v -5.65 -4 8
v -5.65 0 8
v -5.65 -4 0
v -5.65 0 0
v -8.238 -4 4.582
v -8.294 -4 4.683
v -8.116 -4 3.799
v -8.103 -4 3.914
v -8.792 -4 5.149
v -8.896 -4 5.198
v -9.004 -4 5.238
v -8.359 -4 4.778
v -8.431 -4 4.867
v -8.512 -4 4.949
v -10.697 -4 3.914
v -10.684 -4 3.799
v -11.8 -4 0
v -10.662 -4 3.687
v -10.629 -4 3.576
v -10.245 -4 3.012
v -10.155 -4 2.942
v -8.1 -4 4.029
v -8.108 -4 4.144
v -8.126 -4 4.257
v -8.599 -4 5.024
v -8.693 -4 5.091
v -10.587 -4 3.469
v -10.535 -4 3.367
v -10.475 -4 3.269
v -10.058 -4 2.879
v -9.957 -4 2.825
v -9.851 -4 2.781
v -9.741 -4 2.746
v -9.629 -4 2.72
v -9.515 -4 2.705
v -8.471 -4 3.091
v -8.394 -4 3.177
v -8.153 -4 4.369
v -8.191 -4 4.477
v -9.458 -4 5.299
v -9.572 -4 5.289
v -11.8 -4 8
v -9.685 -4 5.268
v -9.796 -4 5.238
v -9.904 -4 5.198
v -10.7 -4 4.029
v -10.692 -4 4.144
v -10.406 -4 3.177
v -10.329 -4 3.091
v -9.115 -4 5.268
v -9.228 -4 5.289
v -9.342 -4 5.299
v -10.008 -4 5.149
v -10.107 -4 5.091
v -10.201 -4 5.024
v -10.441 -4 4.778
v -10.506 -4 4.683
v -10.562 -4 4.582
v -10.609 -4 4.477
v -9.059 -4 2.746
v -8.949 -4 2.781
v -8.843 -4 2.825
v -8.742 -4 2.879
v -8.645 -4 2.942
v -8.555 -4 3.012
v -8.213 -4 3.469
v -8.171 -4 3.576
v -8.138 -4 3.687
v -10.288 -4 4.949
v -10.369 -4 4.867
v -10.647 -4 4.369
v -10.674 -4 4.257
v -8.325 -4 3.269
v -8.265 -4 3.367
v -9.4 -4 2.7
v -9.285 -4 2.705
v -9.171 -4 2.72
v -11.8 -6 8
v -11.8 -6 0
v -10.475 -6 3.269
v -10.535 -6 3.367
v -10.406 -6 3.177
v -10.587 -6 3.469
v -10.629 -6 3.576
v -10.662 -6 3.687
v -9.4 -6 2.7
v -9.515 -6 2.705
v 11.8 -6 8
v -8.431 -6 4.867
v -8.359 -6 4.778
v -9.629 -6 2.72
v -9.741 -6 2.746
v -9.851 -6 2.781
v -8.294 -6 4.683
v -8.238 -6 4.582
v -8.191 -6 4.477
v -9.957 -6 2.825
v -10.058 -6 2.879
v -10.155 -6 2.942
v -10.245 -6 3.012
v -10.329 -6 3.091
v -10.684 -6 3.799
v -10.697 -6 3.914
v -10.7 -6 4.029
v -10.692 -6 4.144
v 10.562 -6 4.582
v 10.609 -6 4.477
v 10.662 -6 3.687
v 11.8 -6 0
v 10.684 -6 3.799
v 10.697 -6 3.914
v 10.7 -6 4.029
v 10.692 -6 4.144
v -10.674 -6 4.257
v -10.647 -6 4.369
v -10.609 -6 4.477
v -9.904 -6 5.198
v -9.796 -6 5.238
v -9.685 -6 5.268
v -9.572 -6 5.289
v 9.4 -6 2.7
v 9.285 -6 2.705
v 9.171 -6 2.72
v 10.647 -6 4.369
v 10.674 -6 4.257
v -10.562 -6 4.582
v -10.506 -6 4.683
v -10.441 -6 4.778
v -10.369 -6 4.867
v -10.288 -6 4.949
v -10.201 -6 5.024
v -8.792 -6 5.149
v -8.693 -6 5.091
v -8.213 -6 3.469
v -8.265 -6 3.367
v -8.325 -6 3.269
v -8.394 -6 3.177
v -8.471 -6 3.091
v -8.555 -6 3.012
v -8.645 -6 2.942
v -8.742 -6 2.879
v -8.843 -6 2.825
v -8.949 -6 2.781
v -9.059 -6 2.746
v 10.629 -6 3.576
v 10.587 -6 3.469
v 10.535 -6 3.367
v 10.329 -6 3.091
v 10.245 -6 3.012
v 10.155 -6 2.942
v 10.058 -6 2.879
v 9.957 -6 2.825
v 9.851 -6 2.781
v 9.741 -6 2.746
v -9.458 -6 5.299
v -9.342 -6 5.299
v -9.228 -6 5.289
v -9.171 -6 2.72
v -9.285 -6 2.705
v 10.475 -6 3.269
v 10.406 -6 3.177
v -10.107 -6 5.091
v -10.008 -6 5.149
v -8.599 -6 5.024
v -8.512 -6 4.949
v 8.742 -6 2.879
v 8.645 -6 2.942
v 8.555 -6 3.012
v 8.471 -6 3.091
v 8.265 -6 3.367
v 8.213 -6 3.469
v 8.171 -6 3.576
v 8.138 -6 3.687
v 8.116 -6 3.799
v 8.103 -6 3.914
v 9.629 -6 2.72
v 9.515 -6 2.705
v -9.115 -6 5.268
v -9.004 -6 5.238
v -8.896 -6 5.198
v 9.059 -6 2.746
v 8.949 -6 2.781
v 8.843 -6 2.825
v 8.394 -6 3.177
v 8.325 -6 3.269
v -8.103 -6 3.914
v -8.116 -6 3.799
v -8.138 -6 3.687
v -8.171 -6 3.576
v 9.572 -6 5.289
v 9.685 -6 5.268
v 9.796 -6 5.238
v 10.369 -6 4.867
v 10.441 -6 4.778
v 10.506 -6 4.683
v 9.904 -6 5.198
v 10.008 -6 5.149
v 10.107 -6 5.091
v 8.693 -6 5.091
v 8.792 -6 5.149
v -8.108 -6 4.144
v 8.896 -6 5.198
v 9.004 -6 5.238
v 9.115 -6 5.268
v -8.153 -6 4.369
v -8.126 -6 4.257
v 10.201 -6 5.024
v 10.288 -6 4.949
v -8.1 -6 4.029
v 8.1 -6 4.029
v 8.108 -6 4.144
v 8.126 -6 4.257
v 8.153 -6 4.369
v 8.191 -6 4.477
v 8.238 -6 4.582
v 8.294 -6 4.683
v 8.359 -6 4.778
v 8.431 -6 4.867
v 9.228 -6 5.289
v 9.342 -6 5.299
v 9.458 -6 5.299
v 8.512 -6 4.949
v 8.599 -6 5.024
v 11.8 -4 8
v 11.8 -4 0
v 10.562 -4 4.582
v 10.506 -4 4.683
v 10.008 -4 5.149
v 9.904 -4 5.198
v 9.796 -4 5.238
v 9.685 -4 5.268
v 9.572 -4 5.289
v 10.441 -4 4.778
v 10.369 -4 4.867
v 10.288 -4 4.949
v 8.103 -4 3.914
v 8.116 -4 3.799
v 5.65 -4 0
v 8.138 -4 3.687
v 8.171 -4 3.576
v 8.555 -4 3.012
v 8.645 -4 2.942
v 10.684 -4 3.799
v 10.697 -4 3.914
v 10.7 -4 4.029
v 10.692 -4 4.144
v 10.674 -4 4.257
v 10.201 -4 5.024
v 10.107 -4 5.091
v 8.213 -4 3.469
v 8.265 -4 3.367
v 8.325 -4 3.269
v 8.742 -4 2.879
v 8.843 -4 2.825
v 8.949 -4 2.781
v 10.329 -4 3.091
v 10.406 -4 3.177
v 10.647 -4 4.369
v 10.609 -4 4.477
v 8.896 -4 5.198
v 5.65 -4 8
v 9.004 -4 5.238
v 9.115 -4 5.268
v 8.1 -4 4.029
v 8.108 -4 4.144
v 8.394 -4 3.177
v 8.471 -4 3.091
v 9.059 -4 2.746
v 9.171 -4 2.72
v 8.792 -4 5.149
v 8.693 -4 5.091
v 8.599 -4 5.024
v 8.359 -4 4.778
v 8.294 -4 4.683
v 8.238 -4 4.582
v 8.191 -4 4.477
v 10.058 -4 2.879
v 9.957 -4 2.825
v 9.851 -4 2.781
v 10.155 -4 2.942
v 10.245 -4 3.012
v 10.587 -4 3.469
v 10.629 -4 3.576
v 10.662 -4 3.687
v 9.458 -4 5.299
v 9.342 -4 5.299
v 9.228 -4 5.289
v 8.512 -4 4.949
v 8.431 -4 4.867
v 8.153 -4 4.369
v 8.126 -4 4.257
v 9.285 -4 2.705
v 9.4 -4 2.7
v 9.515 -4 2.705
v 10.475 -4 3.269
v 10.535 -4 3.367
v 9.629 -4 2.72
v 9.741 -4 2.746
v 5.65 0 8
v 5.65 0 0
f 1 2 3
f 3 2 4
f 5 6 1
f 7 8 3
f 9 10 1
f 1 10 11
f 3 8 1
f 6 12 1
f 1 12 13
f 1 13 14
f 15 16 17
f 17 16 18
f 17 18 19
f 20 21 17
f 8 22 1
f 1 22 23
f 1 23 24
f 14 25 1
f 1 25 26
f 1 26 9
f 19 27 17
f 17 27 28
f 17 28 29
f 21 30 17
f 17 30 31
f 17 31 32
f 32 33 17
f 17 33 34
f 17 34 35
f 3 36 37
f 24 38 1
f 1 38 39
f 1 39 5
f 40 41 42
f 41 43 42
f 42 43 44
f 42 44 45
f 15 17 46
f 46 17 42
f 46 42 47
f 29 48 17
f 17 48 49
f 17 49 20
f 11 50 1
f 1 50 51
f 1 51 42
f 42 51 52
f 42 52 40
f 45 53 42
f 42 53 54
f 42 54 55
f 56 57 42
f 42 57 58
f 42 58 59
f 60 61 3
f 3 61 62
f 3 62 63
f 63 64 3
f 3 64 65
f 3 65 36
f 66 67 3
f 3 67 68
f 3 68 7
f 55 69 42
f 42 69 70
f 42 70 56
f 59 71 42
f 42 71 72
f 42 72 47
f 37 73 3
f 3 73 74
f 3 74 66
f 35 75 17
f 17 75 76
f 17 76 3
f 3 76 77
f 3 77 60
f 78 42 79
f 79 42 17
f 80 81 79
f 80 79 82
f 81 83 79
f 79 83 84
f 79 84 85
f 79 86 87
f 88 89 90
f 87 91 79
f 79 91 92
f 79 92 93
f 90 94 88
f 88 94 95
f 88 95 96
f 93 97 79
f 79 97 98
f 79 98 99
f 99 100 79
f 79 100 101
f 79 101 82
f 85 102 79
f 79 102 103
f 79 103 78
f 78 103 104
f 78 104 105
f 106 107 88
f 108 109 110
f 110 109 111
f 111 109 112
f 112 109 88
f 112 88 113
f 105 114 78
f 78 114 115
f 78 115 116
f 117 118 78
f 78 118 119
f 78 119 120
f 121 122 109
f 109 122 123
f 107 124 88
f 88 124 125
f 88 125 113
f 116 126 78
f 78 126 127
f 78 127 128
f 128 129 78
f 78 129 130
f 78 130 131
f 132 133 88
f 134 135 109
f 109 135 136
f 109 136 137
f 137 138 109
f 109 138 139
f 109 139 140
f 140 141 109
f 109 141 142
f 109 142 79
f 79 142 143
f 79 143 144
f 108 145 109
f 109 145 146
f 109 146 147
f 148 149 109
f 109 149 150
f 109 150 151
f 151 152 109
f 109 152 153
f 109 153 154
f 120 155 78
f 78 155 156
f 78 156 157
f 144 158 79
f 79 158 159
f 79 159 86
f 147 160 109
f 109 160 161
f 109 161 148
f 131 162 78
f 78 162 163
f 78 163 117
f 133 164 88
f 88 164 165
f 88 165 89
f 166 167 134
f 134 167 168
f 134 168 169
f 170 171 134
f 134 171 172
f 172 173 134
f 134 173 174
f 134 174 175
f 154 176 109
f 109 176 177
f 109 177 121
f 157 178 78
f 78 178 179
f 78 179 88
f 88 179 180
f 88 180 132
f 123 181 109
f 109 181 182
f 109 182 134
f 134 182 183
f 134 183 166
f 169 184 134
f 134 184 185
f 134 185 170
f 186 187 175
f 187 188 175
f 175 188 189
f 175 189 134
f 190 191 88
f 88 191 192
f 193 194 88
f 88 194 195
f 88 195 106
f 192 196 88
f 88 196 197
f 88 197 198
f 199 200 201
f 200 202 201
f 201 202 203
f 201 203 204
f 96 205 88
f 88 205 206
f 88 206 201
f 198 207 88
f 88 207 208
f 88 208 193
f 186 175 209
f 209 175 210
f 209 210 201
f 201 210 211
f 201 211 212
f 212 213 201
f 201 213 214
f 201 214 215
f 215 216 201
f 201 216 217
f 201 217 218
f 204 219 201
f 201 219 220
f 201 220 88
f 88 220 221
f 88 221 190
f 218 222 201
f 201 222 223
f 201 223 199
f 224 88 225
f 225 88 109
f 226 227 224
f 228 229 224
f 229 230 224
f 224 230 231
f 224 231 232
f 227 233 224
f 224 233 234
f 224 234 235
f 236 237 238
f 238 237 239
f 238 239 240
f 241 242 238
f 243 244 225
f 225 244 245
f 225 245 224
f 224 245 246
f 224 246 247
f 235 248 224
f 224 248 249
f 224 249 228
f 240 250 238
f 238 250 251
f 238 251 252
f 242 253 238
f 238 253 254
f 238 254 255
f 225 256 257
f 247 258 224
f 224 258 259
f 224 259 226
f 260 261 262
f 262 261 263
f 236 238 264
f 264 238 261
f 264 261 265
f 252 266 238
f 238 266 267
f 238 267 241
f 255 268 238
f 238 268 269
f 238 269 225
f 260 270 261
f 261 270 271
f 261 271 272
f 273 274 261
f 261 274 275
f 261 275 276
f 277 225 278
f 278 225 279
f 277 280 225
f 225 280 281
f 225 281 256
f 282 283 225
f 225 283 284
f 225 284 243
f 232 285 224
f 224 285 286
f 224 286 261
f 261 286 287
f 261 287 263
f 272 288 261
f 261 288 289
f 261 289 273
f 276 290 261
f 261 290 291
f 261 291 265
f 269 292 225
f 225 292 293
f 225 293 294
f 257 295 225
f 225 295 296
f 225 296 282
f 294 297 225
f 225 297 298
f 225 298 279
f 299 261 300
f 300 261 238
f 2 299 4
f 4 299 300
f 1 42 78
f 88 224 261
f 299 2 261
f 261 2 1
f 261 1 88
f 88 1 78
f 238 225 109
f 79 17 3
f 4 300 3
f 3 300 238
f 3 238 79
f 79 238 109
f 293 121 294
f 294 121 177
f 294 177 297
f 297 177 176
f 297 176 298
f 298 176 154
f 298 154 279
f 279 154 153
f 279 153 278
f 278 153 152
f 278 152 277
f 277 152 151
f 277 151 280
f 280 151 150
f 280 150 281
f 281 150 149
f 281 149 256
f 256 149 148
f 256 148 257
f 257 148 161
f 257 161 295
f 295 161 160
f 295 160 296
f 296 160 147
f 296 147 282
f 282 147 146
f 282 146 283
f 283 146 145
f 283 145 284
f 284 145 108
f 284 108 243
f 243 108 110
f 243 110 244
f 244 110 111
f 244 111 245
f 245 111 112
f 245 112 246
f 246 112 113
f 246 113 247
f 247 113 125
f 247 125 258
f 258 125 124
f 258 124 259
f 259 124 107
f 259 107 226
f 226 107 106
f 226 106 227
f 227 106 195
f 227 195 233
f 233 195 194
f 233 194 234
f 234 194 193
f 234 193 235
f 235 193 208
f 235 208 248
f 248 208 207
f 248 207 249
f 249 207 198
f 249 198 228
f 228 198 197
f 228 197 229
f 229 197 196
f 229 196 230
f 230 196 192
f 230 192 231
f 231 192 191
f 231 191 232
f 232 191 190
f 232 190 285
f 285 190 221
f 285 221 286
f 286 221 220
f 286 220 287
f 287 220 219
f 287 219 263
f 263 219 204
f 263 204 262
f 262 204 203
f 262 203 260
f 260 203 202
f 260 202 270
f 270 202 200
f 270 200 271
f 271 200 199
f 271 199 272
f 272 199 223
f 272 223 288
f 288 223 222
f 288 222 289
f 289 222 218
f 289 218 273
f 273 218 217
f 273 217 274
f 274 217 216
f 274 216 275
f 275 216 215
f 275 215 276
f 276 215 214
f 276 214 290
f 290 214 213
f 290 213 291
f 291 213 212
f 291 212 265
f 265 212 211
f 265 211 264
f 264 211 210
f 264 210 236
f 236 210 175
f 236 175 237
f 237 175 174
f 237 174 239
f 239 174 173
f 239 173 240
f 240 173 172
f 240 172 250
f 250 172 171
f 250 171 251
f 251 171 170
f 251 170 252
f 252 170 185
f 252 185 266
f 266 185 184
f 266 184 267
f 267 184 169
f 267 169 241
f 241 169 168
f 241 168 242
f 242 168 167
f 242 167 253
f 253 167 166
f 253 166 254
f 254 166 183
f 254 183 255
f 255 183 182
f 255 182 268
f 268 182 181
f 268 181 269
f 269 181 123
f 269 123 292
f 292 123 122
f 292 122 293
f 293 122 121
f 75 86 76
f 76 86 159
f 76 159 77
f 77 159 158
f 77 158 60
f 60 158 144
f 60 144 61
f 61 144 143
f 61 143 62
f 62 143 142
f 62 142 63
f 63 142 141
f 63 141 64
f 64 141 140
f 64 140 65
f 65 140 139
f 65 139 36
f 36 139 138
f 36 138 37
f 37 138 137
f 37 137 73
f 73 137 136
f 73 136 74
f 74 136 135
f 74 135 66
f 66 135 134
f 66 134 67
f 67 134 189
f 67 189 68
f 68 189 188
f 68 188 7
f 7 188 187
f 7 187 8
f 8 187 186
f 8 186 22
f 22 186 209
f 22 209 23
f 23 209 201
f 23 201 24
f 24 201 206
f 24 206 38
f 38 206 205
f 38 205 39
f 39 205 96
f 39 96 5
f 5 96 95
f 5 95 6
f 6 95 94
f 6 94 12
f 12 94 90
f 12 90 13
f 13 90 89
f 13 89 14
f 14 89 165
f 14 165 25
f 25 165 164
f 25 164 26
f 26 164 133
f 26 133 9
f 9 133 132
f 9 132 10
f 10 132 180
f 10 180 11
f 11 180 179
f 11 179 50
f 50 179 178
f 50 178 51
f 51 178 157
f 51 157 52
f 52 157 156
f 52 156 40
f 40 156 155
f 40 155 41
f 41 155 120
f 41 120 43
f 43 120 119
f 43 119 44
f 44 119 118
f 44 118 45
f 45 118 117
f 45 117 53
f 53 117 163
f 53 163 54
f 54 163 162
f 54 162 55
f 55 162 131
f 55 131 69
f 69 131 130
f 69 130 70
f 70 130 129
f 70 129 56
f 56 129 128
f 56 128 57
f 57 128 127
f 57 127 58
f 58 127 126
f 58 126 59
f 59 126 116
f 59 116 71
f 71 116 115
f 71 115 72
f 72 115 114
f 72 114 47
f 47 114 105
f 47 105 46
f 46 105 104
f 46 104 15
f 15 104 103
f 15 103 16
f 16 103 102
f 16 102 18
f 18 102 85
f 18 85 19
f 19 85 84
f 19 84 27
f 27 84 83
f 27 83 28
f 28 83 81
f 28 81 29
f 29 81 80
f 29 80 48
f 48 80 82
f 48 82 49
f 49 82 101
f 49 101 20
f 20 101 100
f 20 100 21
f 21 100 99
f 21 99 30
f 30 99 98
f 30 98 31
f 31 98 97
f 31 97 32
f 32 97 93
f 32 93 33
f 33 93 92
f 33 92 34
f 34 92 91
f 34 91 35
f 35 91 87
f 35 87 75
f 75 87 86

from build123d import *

# Parameters (mm, degrees)
EXTRUDE_1_DEPTH     = 8
CUT_EXTRUDE_1_REACH = 17.467
SKETCH_2_R          = 1.3


with BuildPart() as part:
    # Эскиз1 → Бобышка-Вытянуть1 (new body)
    with BuildSketch(Plane.XY):
        Polygon((-5.65, 0), (5.65, 0), (5.65, -4), (11.8, -4), (11.8, -6), (-11.8, -6), (-11.8, -4), (-5.65, -4), align=None)
    extrude(amount=EXTRUDE_1_DEPTH)

    # Эскиз2 → Вырез-Вытянуть1 (cut, up to next)
    with BuildSketch(Plane.XZ.offset(6), mode=Mode.PRIVATE) as cut_extrude_1_sk1:
        with Locations(Location((-9.4, 4, 0), (0, 0, 270))):
            Circle(SKETCH_2_R)
    cut_extrude_1_tool1 = extrude(cut_extrude_1_sk1.sketch, amount=-CUT_EXTRUDE_1_REACH, mode=Mode.PRIVATE) & part.part
    # Эскиз2 → Вырез-Вытянуть1 (cut, up to next)
    with BuildSketch(Plane.XZ.offset(6), mode=Mode.PRIVATE) as cut_extrude_1_sk2:
        with Locations(Location((9.4, 4, 0), (0, 0, 270))):
            Circle(SKETCH_2_R)
    cut_extrude_1_tool2 = extrude(cut_extrude_1_sk2.sketch, amount=-CUT_EXTRUDE_1_REACH, mode=Mode.PRIVATE) & part.part
    add(cut_extrude_1_tool1.solids().sort_by_distance((-9.4, -6, 4))[0], mode=Mode.SUBTRACT)
    add(cut_extrude_1_tool2.solids().sort_by_distance((9.4, -6, 4))[0], mode=Mode.SUBTRACT)


solid = part.part
